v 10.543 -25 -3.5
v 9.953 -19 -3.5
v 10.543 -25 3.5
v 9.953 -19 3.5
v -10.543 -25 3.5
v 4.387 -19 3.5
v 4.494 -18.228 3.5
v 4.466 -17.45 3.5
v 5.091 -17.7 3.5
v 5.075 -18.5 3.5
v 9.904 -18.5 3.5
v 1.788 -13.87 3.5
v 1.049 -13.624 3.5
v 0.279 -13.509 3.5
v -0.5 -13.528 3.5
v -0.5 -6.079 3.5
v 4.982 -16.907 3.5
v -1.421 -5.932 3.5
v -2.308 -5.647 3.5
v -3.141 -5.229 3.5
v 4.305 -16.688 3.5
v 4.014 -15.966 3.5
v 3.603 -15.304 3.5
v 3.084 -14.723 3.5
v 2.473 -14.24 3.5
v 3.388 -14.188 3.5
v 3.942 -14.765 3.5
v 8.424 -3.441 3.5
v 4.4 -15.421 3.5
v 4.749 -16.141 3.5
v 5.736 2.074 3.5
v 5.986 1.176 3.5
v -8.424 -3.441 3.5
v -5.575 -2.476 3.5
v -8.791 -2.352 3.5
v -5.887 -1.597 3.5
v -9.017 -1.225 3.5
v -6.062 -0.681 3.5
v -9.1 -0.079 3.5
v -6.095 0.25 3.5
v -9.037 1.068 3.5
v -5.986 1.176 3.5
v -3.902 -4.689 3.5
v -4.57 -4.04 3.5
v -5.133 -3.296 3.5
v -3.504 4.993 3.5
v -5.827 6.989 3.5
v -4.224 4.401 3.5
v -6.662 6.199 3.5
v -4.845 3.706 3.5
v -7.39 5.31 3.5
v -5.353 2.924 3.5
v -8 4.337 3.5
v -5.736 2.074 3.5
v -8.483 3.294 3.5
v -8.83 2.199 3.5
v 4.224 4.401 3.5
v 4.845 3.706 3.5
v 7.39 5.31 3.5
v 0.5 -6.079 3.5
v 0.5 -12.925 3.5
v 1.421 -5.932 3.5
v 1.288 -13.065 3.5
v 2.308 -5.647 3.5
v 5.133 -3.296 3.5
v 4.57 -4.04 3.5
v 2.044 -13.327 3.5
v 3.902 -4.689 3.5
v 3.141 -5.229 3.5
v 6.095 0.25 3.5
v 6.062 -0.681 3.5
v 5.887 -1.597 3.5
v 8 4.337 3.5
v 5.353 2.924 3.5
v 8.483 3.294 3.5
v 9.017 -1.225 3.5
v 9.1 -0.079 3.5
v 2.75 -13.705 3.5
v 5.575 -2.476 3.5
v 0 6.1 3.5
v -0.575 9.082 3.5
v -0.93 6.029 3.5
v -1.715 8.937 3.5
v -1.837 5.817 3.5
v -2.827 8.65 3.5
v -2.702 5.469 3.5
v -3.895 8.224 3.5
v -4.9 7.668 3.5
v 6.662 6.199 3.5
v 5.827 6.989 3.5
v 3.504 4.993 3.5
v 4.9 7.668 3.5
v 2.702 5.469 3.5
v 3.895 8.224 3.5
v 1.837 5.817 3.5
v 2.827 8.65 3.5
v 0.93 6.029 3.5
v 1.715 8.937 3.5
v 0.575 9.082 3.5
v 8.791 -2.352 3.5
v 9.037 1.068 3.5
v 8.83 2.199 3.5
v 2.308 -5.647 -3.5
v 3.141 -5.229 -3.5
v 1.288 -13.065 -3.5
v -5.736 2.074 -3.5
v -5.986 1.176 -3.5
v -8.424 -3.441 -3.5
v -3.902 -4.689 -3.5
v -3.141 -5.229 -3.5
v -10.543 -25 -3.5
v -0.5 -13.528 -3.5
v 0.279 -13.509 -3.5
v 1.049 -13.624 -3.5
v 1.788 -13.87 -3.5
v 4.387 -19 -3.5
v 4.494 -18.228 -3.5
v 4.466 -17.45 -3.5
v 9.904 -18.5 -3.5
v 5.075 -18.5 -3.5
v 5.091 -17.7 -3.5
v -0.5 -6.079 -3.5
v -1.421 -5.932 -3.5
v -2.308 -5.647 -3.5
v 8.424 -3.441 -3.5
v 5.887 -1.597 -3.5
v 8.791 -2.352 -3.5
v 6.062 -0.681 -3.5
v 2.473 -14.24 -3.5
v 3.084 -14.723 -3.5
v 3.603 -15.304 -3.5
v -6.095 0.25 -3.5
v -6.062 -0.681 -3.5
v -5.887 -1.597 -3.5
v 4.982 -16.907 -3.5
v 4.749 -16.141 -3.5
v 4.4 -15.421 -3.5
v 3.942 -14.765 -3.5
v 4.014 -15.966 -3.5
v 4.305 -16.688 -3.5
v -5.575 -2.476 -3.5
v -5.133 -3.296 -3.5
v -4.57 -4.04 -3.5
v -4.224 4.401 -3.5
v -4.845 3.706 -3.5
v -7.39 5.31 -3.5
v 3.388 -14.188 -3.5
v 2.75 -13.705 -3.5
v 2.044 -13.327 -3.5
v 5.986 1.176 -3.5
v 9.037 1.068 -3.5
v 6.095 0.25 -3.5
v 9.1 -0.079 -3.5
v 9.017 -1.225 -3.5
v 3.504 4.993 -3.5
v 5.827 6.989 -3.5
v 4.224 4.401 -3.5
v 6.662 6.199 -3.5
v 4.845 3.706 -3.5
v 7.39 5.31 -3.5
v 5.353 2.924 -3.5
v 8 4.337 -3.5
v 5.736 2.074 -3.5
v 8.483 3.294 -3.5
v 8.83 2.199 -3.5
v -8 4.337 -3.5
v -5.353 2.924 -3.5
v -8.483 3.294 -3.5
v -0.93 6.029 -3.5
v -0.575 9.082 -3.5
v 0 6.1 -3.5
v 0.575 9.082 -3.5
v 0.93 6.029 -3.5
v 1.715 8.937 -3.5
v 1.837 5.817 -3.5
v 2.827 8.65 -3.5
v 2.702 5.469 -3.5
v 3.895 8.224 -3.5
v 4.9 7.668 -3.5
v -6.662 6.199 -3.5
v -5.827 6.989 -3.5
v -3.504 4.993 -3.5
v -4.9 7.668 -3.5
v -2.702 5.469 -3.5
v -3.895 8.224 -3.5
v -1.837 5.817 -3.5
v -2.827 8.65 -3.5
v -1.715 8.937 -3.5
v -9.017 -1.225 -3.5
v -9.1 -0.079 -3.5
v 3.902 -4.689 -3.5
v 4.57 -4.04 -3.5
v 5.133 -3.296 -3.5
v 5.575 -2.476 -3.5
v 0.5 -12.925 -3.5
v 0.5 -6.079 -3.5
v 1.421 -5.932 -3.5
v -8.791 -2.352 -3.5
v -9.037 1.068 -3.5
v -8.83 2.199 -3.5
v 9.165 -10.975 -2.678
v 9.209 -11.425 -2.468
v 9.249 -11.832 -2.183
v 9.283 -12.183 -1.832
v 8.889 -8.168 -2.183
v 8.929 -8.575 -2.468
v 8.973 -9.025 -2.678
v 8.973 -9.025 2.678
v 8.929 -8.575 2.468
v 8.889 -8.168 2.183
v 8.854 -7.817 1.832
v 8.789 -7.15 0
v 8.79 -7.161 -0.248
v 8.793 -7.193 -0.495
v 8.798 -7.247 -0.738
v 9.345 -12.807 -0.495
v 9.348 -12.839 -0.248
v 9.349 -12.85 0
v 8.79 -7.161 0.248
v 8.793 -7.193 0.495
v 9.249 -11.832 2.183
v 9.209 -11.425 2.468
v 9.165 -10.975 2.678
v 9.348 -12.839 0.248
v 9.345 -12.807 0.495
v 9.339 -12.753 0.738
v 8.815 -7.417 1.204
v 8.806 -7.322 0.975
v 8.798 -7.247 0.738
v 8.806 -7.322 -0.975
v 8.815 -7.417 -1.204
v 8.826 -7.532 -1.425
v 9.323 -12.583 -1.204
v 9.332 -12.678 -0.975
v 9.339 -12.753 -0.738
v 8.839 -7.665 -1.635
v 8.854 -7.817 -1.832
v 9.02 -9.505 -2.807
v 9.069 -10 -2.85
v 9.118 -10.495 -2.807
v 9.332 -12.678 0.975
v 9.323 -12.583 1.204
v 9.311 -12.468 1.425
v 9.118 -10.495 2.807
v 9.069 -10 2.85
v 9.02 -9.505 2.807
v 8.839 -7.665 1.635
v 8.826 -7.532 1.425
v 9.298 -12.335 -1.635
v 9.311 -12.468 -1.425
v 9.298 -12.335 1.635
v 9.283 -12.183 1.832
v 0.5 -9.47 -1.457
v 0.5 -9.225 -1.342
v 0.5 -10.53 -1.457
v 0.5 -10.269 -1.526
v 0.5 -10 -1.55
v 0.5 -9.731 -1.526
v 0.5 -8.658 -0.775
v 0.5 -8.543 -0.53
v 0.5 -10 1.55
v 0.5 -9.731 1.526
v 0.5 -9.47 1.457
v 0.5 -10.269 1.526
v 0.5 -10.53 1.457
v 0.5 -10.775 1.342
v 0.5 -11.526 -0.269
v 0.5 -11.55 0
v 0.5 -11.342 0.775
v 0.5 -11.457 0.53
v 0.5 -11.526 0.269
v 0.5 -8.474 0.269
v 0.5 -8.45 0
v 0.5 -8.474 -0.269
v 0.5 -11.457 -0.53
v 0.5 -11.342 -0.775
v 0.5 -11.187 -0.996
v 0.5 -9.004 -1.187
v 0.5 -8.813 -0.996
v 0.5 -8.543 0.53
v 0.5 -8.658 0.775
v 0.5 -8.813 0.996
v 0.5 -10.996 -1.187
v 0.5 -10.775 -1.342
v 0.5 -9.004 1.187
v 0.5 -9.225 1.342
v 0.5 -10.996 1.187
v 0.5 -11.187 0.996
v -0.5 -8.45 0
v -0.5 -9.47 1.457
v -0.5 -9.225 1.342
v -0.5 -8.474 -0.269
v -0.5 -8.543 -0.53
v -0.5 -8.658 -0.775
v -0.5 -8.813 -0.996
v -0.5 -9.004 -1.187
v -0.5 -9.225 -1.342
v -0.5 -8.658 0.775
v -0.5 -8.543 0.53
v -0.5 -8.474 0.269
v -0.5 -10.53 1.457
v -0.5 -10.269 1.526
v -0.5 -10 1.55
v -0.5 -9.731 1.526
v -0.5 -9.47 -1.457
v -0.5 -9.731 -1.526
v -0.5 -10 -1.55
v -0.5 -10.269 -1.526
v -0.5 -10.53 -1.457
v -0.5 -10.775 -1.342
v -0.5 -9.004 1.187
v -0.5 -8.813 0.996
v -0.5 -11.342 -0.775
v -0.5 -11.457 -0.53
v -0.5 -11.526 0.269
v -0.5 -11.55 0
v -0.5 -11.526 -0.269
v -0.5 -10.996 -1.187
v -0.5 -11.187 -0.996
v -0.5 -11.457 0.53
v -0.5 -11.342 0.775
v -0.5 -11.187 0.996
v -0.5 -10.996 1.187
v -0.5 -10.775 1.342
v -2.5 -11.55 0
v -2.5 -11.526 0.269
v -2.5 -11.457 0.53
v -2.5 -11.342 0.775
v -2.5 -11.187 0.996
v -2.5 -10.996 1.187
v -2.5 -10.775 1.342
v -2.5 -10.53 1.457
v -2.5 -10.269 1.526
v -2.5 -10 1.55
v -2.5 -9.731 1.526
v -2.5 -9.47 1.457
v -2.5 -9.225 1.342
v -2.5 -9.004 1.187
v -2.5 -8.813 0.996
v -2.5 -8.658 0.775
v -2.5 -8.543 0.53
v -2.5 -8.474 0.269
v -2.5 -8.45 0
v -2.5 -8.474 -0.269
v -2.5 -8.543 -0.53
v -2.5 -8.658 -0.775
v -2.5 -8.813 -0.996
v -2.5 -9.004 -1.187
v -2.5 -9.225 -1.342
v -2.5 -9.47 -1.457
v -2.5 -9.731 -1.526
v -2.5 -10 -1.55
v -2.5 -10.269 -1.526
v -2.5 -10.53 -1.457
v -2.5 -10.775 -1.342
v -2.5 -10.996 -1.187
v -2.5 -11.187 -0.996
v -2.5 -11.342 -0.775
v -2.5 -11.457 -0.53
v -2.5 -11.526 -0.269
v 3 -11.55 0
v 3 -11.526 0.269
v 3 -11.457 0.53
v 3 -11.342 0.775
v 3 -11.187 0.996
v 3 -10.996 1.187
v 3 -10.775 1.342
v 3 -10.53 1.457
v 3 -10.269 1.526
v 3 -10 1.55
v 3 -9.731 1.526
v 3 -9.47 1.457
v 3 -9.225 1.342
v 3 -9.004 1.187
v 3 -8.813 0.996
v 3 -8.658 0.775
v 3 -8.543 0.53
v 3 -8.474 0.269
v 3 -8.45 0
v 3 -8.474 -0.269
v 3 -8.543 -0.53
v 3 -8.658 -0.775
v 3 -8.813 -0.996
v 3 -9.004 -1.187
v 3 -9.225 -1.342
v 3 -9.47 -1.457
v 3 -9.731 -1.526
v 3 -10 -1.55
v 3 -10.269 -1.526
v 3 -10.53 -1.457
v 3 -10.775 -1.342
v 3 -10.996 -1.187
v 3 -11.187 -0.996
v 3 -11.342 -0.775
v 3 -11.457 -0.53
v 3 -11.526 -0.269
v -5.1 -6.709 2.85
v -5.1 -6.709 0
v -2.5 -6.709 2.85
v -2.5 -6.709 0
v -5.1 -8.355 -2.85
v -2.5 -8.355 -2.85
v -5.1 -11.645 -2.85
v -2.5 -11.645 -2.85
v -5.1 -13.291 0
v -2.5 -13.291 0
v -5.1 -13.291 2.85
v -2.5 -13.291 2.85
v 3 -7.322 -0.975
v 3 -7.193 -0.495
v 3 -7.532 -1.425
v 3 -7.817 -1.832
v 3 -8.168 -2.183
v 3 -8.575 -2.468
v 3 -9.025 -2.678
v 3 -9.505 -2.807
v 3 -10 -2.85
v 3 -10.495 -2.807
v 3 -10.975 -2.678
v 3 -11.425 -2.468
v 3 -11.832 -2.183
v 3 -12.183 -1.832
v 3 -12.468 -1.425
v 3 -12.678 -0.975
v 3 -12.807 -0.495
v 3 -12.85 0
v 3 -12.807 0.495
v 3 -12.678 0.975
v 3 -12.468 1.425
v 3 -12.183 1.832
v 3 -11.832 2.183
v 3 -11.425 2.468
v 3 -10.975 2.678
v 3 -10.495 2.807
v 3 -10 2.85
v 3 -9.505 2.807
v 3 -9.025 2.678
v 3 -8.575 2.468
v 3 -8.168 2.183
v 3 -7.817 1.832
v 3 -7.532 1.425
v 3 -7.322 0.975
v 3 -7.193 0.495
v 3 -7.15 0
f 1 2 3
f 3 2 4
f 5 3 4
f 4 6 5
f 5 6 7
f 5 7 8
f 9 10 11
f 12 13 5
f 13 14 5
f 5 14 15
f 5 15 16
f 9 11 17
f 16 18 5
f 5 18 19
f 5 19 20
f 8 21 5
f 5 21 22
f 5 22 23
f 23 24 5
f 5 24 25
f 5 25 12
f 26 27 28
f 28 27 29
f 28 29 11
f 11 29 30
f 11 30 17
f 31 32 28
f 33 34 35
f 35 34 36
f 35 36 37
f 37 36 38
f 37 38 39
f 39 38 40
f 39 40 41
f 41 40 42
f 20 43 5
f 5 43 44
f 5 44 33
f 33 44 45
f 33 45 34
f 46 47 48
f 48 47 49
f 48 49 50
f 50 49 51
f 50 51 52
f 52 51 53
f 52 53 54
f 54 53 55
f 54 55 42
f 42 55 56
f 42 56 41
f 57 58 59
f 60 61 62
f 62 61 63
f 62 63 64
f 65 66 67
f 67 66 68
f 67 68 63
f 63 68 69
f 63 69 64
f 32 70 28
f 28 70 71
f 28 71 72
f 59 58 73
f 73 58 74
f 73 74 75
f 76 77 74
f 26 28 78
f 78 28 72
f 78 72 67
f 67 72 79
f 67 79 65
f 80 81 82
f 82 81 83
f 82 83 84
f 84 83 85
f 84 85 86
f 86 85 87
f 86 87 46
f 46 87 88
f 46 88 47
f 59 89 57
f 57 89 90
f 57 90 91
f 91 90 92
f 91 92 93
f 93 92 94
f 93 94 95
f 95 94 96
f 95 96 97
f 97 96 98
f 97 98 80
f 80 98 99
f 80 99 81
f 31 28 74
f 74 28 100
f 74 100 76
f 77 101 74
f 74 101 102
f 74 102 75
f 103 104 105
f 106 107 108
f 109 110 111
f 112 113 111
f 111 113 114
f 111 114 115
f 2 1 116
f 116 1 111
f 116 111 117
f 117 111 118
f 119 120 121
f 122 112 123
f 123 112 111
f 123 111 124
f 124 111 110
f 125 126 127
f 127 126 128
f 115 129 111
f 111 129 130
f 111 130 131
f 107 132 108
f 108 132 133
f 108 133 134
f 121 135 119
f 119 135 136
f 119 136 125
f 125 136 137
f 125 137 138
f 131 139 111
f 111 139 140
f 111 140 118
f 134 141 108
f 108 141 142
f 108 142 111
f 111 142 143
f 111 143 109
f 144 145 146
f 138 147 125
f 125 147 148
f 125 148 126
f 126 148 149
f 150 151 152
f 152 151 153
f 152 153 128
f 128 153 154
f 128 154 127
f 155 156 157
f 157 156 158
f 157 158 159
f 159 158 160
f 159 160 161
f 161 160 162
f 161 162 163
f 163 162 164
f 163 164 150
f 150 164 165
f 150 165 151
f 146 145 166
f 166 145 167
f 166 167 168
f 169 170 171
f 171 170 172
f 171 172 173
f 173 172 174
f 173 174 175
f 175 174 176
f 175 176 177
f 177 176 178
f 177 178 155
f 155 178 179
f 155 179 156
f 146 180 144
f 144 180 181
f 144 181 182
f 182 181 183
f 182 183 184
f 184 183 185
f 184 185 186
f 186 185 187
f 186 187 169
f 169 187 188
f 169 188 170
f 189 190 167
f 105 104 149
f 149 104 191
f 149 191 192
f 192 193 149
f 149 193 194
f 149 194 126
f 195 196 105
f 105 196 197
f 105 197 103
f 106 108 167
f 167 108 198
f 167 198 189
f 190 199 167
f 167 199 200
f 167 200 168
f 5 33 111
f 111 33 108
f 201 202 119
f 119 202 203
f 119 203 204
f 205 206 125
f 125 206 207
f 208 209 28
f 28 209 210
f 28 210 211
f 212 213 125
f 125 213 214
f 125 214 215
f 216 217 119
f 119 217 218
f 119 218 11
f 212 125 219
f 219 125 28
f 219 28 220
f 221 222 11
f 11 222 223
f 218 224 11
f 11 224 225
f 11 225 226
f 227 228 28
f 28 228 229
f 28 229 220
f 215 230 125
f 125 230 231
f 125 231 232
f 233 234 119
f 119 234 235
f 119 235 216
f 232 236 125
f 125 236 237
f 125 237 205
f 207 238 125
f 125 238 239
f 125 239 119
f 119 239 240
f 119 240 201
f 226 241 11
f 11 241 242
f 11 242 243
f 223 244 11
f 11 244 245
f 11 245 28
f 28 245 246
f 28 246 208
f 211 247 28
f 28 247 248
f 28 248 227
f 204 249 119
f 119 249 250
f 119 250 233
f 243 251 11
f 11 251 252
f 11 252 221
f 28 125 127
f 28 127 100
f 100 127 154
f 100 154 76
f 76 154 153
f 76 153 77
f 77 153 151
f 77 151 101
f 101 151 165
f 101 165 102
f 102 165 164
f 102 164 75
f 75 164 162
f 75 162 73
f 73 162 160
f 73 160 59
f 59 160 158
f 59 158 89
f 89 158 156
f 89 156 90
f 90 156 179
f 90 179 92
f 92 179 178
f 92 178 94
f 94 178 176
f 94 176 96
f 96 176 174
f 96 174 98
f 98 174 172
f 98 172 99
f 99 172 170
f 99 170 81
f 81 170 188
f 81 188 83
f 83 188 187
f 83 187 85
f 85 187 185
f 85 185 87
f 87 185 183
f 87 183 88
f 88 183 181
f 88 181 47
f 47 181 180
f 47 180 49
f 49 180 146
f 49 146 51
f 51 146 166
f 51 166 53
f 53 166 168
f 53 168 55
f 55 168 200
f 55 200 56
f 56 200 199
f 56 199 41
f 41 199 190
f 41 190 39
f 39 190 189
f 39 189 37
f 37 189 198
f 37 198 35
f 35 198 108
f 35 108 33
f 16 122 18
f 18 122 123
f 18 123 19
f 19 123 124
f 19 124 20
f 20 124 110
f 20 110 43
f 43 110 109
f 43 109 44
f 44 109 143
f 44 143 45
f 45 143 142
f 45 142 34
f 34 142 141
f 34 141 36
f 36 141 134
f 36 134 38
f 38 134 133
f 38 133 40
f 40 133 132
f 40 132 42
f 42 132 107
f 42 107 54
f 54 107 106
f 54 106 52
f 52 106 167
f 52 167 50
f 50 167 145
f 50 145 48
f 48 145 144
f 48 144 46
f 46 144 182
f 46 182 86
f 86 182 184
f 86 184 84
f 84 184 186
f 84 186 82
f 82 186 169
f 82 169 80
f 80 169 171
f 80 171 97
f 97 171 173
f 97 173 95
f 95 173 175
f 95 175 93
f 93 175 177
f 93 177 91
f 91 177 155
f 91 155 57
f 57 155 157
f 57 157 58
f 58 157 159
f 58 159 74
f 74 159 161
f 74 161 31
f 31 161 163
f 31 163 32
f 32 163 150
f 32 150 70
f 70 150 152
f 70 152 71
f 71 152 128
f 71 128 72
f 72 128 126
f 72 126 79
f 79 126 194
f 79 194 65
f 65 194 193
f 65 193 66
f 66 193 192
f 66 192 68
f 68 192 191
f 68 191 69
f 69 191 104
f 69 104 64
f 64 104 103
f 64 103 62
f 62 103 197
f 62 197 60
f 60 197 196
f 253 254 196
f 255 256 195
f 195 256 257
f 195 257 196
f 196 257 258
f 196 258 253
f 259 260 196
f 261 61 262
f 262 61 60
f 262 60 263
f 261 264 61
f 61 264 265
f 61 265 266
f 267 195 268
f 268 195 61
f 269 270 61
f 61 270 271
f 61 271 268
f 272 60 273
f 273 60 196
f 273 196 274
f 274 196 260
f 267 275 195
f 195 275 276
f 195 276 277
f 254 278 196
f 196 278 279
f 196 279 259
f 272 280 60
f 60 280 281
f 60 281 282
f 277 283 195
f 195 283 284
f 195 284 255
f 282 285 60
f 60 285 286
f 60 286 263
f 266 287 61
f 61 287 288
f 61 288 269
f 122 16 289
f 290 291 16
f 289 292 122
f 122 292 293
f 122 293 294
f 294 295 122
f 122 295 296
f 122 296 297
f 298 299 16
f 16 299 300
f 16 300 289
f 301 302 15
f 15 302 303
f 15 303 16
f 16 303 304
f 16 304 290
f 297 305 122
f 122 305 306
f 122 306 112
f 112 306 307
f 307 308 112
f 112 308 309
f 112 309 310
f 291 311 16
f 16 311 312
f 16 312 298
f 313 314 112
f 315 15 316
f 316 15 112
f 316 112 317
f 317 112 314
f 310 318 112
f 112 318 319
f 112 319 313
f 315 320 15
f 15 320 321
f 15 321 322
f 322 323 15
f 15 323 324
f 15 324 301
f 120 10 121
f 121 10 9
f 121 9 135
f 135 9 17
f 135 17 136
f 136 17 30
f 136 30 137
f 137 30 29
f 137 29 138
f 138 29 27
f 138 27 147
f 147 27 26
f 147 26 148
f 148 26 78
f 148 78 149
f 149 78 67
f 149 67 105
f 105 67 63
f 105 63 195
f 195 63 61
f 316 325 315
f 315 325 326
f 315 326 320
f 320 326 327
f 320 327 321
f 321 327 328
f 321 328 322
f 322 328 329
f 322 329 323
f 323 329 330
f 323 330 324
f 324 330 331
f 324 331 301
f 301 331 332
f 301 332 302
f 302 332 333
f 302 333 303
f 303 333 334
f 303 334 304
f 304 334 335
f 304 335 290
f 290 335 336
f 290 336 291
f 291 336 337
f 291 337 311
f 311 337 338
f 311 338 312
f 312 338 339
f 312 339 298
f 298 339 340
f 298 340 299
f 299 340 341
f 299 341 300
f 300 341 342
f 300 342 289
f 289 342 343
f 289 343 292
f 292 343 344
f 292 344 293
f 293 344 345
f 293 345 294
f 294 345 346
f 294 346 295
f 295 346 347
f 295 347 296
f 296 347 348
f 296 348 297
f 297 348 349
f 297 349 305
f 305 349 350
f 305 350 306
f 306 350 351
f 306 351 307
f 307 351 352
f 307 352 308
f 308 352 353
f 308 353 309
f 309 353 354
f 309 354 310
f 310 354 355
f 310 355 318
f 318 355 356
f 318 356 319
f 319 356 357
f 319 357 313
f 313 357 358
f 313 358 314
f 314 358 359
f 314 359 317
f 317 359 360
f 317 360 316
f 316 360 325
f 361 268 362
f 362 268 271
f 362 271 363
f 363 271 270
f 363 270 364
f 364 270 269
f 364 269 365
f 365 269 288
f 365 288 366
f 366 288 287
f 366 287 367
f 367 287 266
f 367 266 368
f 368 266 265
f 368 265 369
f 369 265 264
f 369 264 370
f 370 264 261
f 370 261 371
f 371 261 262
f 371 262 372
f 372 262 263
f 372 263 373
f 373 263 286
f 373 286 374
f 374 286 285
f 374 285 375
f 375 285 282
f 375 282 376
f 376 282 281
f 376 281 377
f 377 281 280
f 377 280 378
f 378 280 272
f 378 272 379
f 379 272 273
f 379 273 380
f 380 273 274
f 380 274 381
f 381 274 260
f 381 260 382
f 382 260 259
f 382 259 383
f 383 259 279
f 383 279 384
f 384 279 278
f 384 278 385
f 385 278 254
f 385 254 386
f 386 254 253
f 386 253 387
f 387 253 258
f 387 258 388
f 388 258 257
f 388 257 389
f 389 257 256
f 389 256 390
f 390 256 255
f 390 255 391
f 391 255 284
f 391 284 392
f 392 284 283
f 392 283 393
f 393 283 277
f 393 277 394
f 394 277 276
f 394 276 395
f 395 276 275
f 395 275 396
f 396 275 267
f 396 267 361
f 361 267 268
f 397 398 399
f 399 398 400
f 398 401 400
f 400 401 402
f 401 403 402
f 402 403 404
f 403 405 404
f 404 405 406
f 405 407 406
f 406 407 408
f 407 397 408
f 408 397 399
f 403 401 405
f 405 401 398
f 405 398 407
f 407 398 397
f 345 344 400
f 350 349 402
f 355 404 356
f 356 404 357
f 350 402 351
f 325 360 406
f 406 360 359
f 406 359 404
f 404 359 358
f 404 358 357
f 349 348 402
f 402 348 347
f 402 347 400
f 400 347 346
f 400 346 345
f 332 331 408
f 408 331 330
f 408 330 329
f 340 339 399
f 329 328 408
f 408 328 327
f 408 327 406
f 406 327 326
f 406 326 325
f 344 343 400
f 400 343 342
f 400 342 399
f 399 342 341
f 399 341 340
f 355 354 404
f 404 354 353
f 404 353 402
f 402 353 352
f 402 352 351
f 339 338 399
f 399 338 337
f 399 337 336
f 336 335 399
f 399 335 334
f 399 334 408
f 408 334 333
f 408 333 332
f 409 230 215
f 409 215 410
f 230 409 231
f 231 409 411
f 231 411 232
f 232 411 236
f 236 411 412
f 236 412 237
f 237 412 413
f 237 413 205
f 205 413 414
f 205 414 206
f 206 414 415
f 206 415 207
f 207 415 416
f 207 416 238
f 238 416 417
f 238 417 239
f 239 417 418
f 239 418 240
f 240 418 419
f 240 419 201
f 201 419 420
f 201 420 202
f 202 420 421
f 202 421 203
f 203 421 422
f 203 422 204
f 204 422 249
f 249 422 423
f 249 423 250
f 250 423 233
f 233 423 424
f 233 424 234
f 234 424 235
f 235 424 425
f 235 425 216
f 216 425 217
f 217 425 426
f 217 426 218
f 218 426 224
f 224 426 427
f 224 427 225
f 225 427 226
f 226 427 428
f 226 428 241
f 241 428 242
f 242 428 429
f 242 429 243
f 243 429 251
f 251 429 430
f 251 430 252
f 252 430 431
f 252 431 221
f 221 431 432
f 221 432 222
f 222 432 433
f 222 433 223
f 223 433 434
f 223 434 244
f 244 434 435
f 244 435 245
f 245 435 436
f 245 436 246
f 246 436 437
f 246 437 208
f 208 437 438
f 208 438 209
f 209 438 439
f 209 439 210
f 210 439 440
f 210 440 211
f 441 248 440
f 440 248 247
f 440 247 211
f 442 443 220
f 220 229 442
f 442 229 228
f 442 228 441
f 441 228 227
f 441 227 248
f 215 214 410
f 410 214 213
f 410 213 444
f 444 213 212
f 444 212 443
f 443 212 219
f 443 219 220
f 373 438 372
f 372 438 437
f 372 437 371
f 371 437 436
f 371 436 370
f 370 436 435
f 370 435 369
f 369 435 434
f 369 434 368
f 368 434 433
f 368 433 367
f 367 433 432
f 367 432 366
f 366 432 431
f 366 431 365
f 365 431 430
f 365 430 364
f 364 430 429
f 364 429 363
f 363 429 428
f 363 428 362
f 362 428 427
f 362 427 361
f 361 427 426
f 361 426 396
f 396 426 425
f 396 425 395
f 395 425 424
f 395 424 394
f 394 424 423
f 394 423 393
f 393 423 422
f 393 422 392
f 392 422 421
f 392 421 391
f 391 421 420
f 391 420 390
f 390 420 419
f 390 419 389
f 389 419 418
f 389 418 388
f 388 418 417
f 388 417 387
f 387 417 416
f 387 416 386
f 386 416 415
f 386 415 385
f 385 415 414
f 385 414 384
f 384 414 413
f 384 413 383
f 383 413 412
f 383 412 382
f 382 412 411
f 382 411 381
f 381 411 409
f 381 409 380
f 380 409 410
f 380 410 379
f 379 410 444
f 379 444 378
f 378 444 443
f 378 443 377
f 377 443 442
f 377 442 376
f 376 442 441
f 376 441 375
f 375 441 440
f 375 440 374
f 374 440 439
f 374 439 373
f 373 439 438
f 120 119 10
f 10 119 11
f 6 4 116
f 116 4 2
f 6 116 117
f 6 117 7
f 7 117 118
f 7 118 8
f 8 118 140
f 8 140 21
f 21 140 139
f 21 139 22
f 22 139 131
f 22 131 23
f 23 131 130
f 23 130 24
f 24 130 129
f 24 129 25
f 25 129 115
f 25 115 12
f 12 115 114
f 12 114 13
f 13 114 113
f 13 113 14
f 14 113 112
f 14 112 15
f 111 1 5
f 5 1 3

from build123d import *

# Parameters (mm, degrees)
SKETCH1_R                      = 6.1
THICKNESS_DEPTH                = 3.5
BOTNUTCUT_START                = -2
SKETCH2_R                      = 2.85
BOTNUTCUT_DEPTH                = 2.6
SKETCH3_R                      = 1.55
BOTSCREWCUT_DEPTH              = 2
CUT_EXTRUDE1_START             = -7
CUT_EXTRUDE1_DEPTH             = 7
RAILNUTCUT_START               = -2
RAILNUTCUT_DEPTH               = 2.6
SKETCH7_R                      = 1.55
RAILSCREWCUT_DEPTH             = 2.6
RAILSCREWCUT_DIRECTION_2_REACH = 53.909
RAILNUTHEADCUT_REACH           = 56.409
RAILNUTHEADCUT_START           = -2.5
SKETCH8_R                      = 2.85
SKETCH9_W                      = 7
SKETCH9_H                      = 0.5
MOVEMENTCUT_DEPTH              = 7
SKETCH10_R                     = 4.5
BOSS_EXTRUDE1_DEPTH            = 3.5
CUT_EXTRUDE2_START             = -50
SKETCH11_W                     = 40
SKETCH11_H                     = 25
CUT_EXTRUDE2_DEPTH             = 25


with BuildPart() as part:
    # Sketch1 → Thickness (new, symmetric)
    with BuildSketch(Plane.XY):
        with BuildLine():
            Line((-13, -50), (13, -50))
            Line((13, -50), (8.424323952, -3.441041405))
            ThreePointArc((8.424323952, -3.441041405), (0, 9.1), (-8.424323952, -3.441041405))
            Line((-8.424323952, -3.441041405), (-13, -50))
        make_face()
        Circle(SKETCH1_R, mode=Mode.SUBTRACT)
    extrude(amount=THICKNESS_DEPTH, both=True)

    # Sketch2 → BotNutCut (cut)
    with BuildSketch(Plane.XZ.offset(50).offset(BOTNUTCUT_START)):
        with Locations((-7.5, 0)):
            Circle(SKETCH2_R)
        with BuildLine():
            Line((-10.790896534, 2.85), (-10.790896534, 0))
            Line((-10.790896534, 0), (-9.968172361, -1.42500007))
            ThreePointArc((-9.968172361, -1.42500007), (-9.96817242, 1.424999968), (-7.499999995, 2.85))
            Line((-7.499999995, 2.85), (-10.790896534, 2.85))
        make_face()
        with BuildLine():
            Line((-4.209103466, 2.85), (-7.499999995, 2.85))
            ThreePointArc((-7.499999995, 2.85), (-5.484745672, 2.015254324), (-4.65, 0))
            ThreePointArc((-4.65, 0), (-4.747111384, -0.737634237), (-5.031827556, -1.424999925))
            Line((-5.031827556, -1.424999925), (-4.209103466, 0))
            Line((-4.209103466, 0), (-4.209103466, 2.85))
        make_face()
        with BuildLine():
            ThreePointArc((-5.031827556, -1.424999925), (-6.074999963, -2.468172379), (-7.5, -2.85))
            Line((-7.5, -2.85), (-5.854551733, -2.85))
            Line((-5.854551733, -2.85), (-5.031827556, -1.424999925))
        make_face()
        with BuildLine():
            ThreePointArc((-7.5, -2.85), (-8.924999965, -2.468172421), (-9.968172361, -1.42500007))
            Line((-9.968172361, -1.42500007), (-9.145448267, -2.85))
            Line((-9.145448267, -2.85), (-7.5, -2.85))
        make_face()
        with BuildLine():
            ThreePointArc((7.5, -2.85), (6.074999995, -2.468172398), (5.031827593, -1.42499999))
            Line((5.031827593, -1.42499999), (5.854551733, -2.85))
            Line((5.854551733, -2.85), (7.5, -2.85))
        make_face()
        with BuildLine():
            ThreePointArc((9.968172375, -1.425000045), (8.924999978, -2.468172414), (7.5, -2.85))
            Line((7.5, -2.85), (9.145448267, -2.85))
            Line((9.145448267, -2.85), (9.968172375, -1.425000045))
        make_face()
        with BuildLine():
            Line((10.790896534, 2.85), (7.5, 2.85))
            ThreePointArc((7.5, 2.85), (9.515254326, 2.015254326), (10.35, 0))
            ThreePointArc((10.35, 0), (10.252888598, -0.737634304), (9.968172375, -1.425000045))
            Line((9.968172375, -1.425000045), (10.790896534, 0))
            Line((10.790896534, 0), (10.790896534, 2.85))
        make_face()
        with BuildLine():
            Line((4.209103466, 2.85), (4.209103466, 0))
            Line((4.209103466, 0), (5.031827593, -1.42499999))
            ThreePointArc((5.031827593, -1.42499999), (5.031827602, 1.425000005), (7.5, 2.85))
            Line((7.5, 2.85), (4.209103466, 2.85))
        make_face()
        with Locations((7.5, 0)):
            Circle(SKETCH2_R)
    extrude(amount=-BOTNUTCUT_DEPTH, mode=Mode.SUBTRACT)

    # Sketch3 → BotScrewCut (cut)
    with BuildSketch(Plane.XZ.offset(50)):
        with Locations(Location((-7.5, 0, 0), (0, 0, 270))):
            Circle(SKETCH3_R)
        with Locations(Location((7.5, 0, 0), (0, 0, 270))):
            Circle(SKETCH3_R)
    extrude(amount=-BOTSCREWCUT_DEPTH, mode=Mode.SUBTRACT)

    # Sketch5 → Cut-Extrude1 (cut)
    with BuildSketch(Plane.XY.offset(3.5).offset(CUT_EXTRUDE1_START)):
        with BuildLine():
            ThreePointArc((0.5, -6.079473661), (0, -6.1), (-0.5, -6.079473661))
            Line((-0.5, -6.079473661), (-0.5, -12.924568984))
            ThreePointArc((-0.5, -12.924568984), (0, -23.1), (0.5, -12.924568984))
            Line((0.5, -12.924568984), (0.5, -6.079473661))
        make_face()
    extrude(amount=CUT_EXTRUDE1_DEPTH, mode=Mode.SUBTRACT)

    # Sketch6 → RailNutCut (cut)
    with BuildSketch(Plane(origin=(-0.5, 0, 0), x_dir=(0, 0, -1), z_dir=(1, 0, 0)).offset(RAILNUTCUT_START)):
        Polygon((0, -13.290896534), (2.85, -11.645448267), (2.85, -8.354551733), (0, -6.709103466), (-2.85, -6.709103466), (-2.85, -13.290896534), align=None)
    extrude(amount=-RAILNUTCUT_DEPTH, mode=Mode.SUBTRACT)

    # Sketch7 → RailScrewCut (cut)
    with BuildSketch(Plane(origin=(-0.5, 0, 0), x_dir=(0, 0, -1), z_dir=(1, 0, 0))):
        with Locations(Location((0, -10, 0), (0, 0, 270))):
            Circle(SKETCH7_R)
    extrude(amount=-RAILSCREWCUT_DEPTH, mode=Mode.SUBTRACT)

    # RailScrewCut direction 2: up to this plane
    railscrewcut_direction_2_end = Plane(origin=(13, -50, 3.5), z_dir=(-0.9952055153223801, -0.09780583966162733, 0))
    # Sketch7 → RailScrewCut direction 2 (cut, up to the surface)
    with BuildSketch(Plane(origin=(-0.5, 0, 0), x_dir=(0, 0, -1), z_dir=(1, 0, 0)), mode=Mode.PRIVATE) as railscrewcut_direction_2_sk1:
        with Locations(Location((0, -10, 0), (0, 0, 270))):
            Circle(SKETCH7_R)
    railscrewcut_direction_2_tool1 = split(extrude(railscrewcut_direction_2_sk1.sketch, amount=RAILSCREWCUT_DIRECTION_2_REACH, mode=Mode.PRIVATE), bisect_by=railscrewcut_direction_2_end, keep=Keep.BOTH, mode=Mode.PRIVATE)
    add(railscrewcut_direction_2_tool1.solids().sort_by_distance((-0.5, -10, 0))[0], mode=Mode.SUBTRACT)

    # RailNutHeadCut: up to this plane
    railnutheadcut_end = Plane(origin=(13, -50, 3.5), z_dir=(-0.9952055153223801, -0.09780583966162733, 0))
    # Sketch8 → RailNutHeadCut (cut, up to the surface)
    with BuildSketch(Plane.ZY.offset(-0.5).offset(RAILNUTHEADCUT_START), mode=Mode.PRIVATE) as railnutheadcut_sk1:
        with Locations(Location((0, -10, 0), (0, 0, 270))):
            Circle(SKETCH8_R)
    railnutheadcut_tool1 = split(extrude(railnutheadcut_sk1.sketch, amount=-RAILNUTHEADCUT_REACH, mode=Mode.PRIVATE), bisect_by=railnutheadcut_end, keep=Keep.BOTH, mode=Mode.PRIVATE)
    add(railnutheadcut_tool1.solids().sort_by_distance((3, -10, 0))[0], mode=Mode.SUBTRACT)

    # Sketch9 → MovementCut (cut)
    with BuildSketch(Plane.XY.offset(3.5)):
        with Locations((7.5, -18.75)):
            Rectangle(SKETCH9_W, SKETCH9_H)
    extrude(amount=-MOVEMENTCUT_DEPTH, mode=Mode.SUBTRACT)

    # Sketch10 → Boss-Extrude1 (add, symmetric)
    with BuildSketch(Plane.XY):
        with BuildLine():
            Line((-0.5, -13.527864045), (-0.5, -12.924568984))
            ThreePointArc((-0.5, -12.924568984), (-3.780537731, -21.42308844), (5.0009999, -19))
            Line((5.0009999, -19), (4.387482194, -19))
            ThreePointArc((4.387482194, -19), (-3.356217727, -20.997632828), (-0.5, -13.527864045))
        make_face()
        with Locations((0, -18)):
            Circle(SKETCH10_R)
    extrude(amount=BOSS_EXTRUDE1_DEPTH, both=True)

    # Sketch11 → Cut-Extrude2 (cut)
    with BuildSketch(Plane(origin=(0, 0, 0), x_dir=(1, 0, 0), z_dir=(0, 1, 0)).offset(CUT_EXTRUDE2_START)):
        Rectangle(SKETCH11_W, SKETCH11_H)
    extrude(amount=CUT_EXTRUDE2_DEPTH, mode=Mode.SUBTRACT)


solid = part.part
